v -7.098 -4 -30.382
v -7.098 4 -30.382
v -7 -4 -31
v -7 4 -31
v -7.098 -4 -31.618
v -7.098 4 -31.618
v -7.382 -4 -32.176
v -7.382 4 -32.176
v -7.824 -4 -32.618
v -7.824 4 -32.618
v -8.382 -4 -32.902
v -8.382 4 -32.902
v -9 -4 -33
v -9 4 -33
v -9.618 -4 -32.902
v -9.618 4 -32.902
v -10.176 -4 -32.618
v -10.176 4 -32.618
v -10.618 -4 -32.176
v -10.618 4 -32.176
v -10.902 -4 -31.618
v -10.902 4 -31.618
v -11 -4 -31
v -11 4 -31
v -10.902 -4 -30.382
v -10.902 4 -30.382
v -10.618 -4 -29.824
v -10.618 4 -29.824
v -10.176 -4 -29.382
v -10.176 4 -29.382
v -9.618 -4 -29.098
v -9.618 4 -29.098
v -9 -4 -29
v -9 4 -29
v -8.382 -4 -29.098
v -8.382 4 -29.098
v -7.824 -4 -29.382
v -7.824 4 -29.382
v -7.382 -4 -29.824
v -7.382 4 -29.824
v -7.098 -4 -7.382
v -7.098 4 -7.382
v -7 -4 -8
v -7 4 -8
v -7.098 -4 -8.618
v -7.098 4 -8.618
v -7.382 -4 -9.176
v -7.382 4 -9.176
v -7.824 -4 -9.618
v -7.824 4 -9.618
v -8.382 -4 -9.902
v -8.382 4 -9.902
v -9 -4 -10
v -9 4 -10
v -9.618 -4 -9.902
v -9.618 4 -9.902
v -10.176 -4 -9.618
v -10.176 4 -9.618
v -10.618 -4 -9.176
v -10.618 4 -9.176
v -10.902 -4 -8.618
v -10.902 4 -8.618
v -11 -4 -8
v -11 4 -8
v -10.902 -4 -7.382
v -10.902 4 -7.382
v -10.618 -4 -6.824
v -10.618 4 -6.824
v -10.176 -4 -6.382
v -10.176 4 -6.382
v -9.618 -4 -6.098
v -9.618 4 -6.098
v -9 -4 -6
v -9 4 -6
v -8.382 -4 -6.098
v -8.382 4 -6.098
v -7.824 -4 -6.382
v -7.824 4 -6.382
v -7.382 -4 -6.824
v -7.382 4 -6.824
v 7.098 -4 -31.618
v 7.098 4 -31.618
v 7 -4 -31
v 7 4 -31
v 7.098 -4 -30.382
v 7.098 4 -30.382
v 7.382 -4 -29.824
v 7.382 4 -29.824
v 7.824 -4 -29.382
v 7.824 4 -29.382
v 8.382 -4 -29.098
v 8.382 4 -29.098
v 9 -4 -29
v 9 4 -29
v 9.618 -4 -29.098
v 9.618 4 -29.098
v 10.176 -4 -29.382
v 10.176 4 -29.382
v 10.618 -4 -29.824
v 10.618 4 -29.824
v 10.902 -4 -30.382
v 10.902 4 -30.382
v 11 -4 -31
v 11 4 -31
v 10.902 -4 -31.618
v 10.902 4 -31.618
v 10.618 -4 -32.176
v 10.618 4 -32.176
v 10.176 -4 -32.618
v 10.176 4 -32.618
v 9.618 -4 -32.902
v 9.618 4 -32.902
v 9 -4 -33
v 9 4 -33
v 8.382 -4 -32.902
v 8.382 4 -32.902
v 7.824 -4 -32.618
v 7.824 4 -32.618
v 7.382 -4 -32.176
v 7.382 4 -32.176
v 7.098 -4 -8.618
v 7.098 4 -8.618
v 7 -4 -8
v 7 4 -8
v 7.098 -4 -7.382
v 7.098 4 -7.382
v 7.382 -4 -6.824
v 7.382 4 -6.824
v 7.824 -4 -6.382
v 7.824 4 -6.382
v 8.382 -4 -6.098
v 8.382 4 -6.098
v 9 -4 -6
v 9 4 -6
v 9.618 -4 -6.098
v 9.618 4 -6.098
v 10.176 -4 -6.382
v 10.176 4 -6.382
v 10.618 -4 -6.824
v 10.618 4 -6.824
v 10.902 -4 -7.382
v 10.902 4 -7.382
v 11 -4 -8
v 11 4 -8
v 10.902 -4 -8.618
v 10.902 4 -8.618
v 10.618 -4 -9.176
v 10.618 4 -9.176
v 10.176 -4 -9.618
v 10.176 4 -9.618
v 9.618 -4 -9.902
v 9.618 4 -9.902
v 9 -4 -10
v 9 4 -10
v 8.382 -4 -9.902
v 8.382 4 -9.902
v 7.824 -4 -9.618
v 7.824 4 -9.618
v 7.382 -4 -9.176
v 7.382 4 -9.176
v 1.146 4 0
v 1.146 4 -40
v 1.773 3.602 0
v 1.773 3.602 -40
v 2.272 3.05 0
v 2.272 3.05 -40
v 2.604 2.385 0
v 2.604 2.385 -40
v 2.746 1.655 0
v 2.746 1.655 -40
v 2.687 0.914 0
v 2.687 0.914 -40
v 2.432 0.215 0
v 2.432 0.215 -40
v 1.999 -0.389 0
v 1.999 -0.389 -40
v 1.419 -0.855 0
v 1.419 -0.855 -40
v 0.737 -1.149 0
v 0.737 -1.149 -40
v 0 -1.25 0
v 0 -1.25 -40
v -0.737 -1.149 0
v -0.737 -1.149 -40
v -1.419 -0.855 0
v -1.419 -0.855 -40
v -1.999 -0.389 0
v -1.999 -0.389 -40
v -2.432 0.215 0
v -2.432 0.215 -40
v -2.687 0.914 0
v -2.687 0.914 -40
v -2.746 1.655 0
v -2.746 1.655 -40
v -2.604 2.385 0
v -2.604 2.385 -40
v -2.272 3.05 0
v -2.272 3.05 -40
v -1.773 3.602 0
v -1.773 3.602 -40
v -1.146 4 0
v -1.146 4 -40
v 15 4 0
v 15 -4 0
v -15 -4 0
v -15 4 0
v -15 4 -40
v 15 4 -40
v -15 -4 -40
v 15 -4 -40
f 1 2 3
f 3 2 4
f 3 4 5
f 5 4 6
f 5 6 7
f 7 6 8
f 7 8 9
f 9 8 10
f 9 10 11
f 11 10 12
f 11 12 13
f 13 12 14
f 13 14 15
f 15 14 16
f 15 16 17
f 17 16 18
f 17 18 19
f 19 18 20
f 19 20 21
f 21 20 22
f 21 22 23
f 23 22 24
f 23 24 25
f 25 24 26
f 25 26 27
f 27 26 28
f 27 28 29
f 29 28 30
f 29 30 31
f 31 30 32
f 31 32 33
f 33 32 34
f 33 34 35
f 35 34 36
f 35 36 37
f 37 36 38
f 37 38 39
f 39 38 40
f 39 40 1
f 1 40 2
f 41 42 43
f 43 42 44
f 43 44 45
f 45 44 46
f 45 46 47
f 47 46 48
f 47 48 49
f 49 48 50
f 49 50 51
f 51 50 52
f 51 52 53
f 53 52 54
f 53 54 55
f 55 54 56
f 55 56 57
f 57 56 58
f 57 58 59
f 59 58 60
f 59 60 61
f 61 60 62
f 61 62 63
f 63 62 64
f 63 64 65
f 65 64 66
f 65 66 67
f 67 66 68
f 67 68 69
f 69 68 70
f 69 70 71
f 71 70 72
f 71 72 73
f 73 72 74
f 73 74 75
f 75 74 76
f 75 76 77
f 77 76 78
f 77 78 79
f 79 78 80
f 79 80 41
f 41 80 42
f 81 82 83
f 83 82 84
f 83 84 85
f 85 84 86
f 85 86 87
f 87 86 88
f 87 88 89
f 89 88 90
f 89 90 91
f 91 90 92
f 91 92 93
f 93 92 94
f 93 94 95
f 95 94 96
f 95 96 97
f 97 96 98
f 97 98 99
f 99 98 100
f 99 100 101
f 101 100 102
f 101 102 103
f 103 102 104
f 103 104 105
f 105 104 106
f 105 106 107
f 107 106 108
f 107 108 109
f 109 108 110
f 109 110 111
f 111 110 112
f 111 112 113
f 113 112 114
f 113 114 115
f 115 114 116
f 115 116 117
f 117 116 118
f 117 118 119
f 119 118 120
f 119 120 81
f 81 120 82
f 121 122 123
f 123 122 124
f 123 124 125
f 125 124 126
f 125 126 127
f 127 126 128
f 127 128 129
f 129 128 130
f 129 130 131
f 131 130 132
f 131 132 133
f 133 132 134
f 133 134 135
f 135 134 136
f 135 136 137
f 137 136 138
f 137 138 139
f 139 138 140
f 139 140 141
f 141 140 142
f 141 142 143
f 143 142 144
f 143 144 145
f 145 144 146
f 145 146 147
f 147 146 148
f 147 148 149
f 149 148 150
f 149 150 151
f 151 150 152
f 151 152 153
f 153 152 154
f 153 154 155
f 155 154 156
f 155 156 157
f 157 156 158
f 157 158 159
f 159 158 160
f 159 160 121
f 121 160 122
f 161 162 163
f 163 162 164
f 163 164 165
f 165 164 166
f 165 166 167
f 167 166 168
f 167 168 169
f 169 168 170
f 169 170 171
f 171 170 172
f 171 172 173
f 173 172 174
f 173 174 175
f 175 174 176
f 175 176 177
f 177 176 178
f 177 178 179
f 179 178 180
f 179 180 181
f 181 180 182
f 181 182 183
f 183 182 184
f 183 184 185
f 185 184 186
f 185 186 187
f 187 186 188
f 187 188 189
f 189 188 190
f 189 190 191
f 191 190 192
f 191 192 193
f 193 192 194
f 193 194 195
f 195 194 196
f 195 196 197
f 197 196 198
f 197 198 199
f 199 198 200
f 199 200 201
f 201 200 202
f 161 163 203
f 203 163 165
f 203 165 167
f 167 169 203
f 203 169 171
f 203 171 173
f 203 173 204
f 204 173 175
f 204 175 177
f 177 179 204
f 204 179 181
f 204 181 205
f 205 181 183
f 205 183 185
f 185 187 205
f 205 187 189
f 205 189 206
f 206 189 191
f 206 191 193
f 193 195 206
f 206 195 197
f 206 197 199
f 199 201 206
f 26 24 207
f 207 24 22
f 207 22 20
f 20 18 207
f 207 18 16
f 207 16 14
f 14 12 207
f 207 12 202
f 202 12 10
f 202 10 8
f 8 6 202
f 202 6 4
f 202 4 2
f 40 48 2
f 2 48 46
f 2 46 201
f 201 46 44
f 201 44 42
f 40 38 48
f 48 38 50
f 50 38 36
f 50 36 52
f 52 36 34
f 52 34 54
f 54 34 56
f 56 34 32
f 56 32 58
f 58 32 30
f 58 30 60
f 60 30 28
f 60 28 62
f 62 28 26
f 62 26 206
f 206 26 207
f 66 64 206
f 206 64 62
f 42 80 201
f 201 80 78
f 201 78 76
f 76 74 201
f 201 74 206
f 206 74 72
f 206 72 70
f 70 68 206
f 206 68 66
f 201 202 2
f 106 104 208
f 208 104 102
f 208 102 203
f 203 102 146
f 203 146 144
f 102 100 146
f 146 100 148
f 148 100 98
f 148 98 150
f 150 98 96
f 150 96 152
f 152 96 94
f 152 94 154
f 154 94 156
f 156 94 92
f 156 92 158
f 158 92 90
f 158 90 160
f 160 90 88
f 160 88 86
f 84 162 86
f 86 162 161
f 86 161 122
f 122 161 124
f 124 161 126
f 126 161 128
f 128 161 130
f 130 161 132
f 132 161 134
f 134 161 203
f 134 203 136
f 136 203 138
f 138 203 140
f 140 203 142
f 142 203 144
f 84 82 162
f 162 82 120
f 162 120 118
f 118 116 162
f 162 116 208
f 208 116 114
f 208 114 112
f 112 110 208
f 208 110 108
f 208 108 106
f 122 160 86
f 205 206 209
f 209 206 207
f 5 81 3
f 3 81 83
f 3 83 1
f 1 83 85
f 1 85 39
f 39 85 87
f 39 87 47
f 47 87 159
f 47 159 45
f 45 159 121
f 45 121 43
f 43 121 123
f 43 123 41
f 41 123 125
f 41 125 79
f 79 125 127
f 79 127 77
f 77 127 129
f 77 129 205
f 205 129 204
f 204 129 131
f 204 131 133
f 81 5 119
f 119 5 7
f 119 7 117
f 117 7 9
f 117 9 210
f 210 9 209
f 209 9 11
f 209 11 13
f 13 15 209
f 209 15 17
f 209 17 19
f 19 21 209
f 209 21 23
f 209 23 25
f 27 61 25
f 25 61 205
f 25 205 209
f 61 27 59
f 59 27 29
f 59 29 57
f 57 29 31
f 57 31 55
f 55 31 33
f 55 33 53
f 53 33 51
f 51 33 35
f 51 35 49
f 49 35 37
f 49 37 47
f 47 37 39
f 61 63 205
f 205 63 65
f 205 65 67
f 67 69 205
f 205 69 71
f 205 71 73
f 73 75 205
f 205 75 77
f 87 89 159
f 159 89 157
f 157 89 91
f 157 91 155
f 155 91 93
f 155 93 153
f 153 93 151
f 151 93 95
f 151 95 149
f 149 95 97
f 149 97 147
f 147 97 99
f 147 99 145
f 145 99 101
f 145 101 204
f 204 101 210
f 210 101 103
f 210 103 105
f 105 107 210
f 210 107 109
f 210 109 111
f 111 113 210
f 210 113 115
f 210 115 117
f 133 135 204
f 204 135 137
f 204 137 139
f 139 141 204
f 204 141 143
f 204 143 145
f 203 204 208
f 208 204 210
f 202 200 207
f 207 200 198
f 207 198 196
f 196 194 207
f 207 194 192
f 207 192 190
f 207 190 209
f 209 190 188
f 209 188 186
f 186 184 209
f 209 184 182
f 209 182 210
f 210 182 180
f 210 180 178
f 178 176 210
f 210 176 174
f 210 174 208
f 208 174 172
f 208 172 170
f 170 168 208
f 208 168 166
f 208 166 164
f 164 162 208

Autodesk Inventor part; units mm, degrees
ref_plane "YZ Plane" through (0, 0, 0) normal (1, 0, 0) x (0, 1, 0)
ref_plane "XZ Plane" through (0, 0, 0) normal (0, 1, 0) x (-1, 0, 0)
sketch "Sketch1" plane through (0, 0, 0) normal (0, 0, 1) x (1, 0, 0)
  line L0 (-15, -4) -> (15, -4)
  line L1 (15, -4) -> (15, 4)
  line L2 (15, 4) -> (-15, 4)
  line L3 (-15, 4) -> (-15, -4)
  line L4 (-15, -4) -> (15, 4) construction
  line L5 (15, -4) -> (-15, 4) construction
  point P0 (0, 0)
  dimension "d2" = 30
  dimension "d3" = 8
extrude "Extrusion1" add sketch "Sketch1" against normal blind 40
sketch "Sketch2" plane through (0, 0, 0) normal (0, 0, 1) x (1, 0, 0)
  circle A0 centre (0, 1.5) radius 2.75
  line L0 (-15, -4) -> (15, -4) projected
  point P0 (0, 0)
  point P1 (-9, -4)
  point P2 (9, -4)
  dimension "d7" = 5.5
  dimension "d8" = 5.5
extrude "Extrusion2" cut sketch "Sketch2" against normal blind 40
sketch "Sketch3" plane through (15, 4, 0) normal (0, 1, 0) x (1, 0, 0)
  circle A0 centre (-6, 8) radius 2
  line L0 (0, 0) -> (0, 40) projected
  line L1 (0, 0) -> (-13.8544, 0) projected
  point P0 (-15, 0)
  dimension "d11" = 4
  dimension "d12" = 6
  dimension "d13" = 8
extrude "Extrusion3" cut sketch "Sketch3" against normal blind 40
pattern_linear "Rectangular Pattern1" count 2 spacing 23 along (0, 0, -1) of "Extrusion3"
ref_plane "Work Plane1" through (0, -4, 0) normal (1, 0, 0) x (0, 0, -1)
mirror "Mirror1" about plane through (0, -4, 0) normal (1, 0, 0) of "Extrusion3", "Rectangular Pattern1"
properties part number "Differential_drive_wheel"
